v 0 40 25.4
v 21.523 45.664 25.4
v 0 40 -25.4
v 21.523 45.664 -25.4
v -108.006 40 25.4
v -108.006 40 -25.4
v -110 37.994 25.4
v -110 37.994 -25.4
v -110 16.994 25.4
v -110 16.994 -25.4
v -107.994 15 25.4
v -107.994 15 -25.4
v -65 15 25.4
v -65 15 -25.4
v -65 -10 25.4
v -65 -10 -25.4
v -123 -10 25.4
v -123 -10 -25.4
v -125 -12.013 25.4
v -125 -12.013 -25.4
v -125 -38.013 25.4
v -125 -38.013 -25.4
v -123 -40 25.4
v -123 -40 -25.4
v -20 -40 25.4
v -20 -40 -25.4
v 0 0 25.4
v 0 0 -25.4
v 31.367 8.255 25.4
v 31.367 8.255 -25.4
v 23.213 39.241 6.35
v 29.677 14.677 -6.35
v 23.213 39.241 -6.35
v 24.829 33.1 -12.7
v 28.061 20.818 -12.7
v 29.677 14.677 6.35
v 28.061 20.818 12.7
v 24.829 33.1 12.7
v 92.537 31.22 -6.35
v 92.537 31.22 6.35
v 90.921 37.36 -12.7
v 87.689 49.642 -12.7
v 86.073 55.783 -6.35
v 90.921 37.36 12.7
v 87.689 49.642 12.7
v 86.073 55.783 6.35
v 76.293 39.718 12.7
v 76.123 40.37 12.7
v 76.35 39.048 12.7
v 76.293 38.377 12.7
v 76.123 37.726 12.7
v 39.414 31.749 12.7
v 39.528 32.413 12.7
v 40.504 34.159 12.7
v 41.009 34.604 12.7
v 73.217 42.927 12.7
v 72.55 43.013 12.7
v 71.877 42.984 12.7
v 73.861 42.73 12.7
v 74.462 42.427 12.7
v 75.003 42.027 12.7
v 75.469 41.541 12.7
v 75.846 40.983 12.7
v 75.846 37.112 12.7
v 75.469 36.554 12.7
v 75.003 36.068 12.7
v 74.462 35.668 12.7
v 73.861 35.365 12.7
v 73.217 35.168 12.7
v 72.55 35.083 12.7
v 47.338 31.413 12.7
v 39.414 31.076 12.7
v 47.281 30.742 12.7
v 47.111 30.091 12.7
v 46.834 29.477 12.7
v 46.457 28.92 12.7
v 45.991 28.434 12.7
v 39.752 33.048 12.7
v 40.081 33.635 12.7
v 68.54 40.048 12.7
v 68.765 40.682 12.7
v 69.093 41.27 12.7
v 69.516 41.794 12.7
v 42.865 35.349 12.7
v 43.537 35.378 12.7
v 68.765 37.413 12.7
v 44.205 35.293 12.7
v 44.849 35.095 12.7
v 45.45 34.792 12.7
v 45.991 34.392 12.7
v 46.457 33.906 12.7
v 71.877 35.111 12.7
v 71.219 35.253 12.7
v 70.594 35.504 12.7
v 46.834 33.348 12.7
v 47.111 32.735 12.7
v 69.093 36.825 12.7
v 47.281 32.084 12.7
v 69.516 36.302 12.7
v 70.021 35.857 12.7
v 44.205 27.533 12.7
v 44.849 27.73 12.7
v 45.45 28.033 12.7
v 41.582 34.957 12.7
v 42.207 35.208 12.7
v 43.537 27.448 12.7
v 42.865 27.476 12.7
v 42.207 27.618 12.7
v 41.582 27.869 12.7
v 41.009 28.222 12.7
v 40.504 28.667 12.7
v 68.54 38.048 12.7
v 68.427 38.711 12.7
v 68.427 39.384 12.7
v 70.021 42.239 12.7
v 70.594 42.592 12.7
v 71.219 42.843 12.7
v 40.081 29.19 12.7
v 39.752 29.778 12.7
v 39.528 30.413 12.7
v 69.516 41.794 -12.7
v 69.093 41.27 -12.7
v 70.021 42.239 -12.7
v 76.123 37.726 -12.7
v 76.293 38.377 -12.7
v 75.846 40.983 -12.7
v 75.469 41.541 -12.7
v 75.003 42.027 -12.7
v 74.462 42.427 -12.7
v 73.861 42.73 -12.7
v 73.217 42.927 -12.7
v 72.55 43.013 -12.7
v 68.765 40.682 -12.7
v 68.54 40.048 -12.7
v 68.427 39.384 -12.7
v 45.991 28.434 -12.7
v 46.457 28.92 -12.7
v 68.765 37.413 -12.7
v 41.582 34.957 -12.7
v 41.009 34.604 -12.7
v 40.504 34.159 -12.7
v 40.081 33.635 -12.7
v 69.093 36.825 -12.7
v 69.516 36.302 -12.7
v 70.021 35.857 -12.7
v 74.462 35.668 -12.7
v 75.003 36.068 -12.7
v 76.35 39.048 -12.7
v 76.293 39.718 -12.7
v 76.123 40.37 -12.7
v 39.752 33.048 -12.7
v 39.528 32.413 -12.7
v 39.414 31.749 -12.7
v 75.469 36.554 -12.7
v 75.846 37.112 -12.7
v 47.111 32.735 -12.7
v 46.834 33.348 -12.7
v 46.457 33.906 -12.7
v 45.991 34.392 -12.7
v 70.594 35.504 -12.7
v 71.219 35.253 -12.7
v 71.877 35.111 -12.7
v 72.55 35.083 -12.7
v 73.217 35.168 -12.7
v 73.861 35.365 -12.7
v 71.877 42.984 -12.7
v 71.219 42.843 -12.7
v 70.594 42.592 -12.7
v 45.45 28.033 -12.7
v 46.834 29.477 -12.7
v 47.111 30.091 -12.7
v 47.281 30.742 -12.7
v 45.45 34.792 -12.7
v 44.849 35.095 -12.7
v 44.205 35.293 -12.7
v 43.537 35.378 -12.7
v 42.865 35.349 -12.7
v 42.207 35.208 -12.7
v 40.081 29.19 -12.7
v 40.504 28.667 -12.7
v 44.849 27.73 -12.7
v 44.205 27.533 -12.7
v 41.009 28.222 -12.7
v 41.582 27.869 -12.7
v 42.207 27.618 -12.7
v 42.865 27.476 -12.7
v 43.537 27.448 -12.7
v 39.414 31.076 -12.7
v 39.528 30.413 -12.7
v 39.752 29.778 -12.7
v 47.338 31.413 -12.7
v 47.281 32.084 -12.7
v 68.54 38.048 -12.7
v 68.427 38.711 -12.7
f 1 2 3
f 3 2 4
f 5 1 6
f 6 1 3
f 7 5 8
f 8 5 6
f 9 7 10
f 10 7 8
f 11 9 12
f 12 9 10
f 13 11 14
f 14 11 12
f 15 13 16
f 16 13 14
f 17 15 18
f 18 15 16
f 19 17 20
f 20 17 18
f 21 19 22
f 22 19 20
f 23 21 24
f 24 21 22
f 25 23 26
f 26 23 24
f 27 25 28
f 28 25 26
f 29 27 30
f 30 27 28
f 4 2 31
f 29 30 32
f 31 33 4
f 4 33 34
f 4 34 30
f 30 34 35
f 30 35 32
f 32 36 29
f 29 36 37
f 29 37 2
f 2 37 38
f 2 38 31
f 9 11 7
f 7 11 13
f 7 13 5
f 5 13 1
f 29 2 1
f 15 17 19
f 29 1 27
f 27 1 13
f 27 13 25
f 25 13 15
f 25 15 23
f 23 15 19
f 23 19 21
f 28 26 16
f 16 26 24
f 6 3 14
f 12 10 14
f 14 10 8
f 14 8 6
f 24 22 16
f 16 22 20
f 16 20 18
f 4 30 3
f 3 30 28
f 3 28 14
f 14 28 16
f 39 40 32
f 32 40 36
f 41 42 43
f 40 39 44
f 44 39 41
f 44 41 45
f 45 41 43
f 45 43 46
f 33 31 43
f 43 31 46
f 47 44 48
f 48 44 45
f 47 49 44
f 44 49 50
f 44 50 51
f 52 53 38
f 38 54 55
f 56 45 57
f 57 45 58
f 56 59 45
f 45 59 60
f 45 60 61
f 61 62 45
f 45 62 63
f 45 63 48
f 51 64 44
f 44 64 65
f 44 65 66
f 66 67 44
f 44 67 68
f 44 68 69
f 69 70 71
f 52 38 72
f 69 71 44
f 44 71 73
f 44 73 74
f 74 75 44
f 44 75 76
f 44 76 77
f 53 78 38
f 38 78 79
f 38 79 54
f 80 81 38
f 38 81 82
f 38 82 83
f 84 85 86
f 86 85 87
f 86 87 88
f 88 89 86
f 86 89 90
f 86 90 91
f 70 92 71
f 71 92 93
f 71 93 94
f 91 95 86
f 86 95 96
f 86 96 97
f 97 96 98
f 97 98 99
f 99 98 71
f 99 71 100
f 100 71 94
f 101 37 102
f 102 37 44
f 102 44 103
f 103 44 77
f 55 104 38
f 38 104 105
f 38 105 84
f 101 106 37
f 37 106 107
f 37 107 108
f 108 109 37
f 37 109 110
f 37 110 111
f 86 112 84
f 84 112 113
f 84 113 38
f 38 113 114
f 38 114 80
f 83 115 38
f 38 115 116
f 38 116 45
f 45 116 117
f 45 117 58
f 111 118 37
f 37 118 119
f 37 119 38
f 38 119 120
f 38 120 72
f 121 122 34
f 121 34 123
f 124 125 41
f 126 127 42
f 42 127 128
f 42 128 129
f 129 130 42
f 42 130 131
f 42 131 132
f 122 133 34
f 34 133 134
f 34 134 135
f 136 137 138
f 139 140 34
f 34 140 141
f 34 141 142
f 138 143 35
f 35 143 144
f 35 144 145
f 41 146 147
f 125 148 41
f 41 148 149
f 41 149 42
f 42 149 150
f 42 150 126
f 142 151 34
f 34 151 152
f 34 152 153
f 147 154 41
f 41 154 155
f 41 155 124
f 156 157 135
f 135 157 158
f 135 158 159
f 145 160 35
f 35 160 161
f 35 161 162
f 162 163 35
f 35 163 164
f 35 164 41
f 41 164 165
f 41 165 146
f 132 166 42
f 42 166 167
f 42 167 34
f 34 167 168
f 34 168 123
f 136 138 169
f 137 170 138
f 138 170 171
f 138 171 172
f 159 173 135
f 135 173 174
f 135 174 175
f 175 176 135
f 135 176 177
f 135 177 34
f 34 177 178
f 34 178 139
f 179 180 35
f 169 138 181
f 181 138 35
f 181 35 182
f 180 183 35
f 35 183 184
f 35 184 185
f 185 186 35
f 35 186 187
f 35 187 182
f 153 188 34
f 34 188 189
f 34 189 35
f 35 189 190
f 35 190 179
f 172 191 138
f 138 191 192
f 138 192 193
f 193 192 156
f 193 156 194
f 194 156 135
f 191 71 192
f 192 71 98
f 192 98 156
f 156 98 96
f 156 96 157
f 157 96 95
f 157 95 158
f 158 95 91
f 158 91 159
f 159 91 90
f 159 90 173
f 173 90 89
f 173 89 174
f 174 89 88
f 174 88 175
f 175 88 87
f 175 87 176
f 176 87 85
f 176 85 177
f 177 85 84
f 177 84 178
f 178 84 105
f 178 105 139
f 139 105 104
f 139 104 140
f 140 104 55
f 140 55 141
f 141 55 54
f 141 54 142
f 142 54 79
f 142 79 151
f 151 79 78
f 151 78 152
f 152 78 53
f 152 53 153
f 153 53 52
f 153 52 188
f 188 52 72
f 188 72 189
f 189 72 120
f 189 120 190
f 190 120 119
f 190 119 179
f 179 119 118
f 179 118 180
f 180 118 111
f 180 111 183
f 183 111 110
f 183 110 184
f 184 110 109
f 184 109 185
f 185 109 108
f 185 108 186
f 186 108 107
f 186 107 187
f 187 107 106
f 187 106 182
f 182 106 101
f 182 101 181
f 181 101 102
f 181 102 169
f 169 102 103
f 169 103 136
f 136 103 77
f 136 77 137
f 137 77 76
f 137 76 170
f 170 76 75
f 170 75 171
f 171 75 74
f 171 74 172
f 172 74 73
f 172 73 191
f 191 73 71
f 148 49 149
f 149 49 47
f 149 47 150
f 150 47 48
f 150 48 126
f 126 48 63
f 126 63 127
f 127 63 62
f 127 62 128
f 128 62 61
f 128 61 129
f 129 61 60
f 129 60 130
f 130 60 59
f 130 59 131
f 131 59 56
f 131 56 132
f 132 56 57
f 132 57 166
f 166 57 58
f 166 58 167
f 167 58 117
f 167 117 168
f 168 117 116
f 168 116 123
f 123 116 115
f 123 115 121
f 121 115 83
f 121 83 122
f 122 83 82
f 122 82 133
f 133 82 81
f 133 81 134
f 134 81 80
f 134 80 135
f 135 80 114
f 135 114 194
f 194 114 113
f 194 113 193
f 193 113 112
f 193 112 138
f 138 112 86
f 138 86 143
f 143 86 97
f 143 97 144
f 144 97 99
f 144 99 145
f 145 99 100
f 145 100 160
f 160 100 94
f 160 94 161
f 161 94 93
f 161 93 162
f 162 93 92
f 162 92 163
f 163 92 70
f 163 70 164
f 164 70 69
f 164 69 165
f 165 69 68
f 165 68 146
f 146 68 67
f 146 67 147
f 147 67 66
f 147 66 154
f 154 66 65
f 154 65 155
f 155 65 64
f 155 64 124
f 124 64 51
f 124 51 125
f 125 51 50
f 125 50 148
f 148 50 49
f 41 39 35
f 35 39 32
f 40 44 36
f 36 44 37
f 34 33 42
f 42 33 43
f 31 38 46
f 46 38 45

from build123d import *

# Parameters (mm, degrees)
SALIENTE_EXTRUIR1_DEPTH = 25.4
SALIENTE_EXTRUIR2_DEPTH = 12.7
CROQUIS4_R              = 3.96875
CORTAR_EXTRUIR2_DEPTH   = 143.085809608
REDONDEO1_SIZE          = 6.35


with BuildPart() as part:
    # Croquis1 → Saliente-Extruir1 (new, symmetric)
    with BuildSketch(Plane.XY):
        Polygon((21.5228, 45.6639), (31.367398371, 8.254586189), (0, 0), (-20, -40), (-123, -40), (-125, -38.012905156), (-125, -12.012905156), (-123.000083272, -10), (-65.000083272, -10), (-65.000083272, 15), (-107.993526537, 15), (-110, 16.993526537), (-110, 37.993526537), (-108.006473463, 40), (0, 40), align=None)
    extrude(amount=SALIENTE_EXTRUIR1_DEPTH, both=True)

    # Croquis2 → Saliente-Extruir2 (add, symmetric)
    with BuildSketch(Plane.XY):
        Polygon((29.677177015, 14.677399874), (92.537004524, 31.219530495), (86.072848866, 55.783216937), (23.213021357, 39.241086316), align=None)
    extrude(amount=SALIENTE_EXTRUIR2_DEPTH, both=True)

    # Croquis4 → Cortar-Extruir2 (cut, through all)
    with BuildSketch(Plane.XY.offset(12.7)):
        with Locations((72.381126981, 39.047723164)):
            Circle(CROQUIS4_R)
        with Locations((43.3688989, 31.412893647)):
            Circle(CROQUIS4_R)
    extrude(amount=-CORTAR_EXTRUIR2_DEPTH, mode=Mode.SUBTRACT)

    # Redondeo1
    redondeo1_edges = [part.edges().sort_by_distance(p)[0] for p in [
        (61.107090769, 22.948465184, -12.7),
        (54.642935111, 47.512151626, -12.7),
        (61.107090769, 22.948465184, 12.7),
        (54.642935111, 47.512151626, 12.7),
    ]]
    chamfer(redondeo1_edges, length=REDONDEO1_SIZE)


solid = part.part
